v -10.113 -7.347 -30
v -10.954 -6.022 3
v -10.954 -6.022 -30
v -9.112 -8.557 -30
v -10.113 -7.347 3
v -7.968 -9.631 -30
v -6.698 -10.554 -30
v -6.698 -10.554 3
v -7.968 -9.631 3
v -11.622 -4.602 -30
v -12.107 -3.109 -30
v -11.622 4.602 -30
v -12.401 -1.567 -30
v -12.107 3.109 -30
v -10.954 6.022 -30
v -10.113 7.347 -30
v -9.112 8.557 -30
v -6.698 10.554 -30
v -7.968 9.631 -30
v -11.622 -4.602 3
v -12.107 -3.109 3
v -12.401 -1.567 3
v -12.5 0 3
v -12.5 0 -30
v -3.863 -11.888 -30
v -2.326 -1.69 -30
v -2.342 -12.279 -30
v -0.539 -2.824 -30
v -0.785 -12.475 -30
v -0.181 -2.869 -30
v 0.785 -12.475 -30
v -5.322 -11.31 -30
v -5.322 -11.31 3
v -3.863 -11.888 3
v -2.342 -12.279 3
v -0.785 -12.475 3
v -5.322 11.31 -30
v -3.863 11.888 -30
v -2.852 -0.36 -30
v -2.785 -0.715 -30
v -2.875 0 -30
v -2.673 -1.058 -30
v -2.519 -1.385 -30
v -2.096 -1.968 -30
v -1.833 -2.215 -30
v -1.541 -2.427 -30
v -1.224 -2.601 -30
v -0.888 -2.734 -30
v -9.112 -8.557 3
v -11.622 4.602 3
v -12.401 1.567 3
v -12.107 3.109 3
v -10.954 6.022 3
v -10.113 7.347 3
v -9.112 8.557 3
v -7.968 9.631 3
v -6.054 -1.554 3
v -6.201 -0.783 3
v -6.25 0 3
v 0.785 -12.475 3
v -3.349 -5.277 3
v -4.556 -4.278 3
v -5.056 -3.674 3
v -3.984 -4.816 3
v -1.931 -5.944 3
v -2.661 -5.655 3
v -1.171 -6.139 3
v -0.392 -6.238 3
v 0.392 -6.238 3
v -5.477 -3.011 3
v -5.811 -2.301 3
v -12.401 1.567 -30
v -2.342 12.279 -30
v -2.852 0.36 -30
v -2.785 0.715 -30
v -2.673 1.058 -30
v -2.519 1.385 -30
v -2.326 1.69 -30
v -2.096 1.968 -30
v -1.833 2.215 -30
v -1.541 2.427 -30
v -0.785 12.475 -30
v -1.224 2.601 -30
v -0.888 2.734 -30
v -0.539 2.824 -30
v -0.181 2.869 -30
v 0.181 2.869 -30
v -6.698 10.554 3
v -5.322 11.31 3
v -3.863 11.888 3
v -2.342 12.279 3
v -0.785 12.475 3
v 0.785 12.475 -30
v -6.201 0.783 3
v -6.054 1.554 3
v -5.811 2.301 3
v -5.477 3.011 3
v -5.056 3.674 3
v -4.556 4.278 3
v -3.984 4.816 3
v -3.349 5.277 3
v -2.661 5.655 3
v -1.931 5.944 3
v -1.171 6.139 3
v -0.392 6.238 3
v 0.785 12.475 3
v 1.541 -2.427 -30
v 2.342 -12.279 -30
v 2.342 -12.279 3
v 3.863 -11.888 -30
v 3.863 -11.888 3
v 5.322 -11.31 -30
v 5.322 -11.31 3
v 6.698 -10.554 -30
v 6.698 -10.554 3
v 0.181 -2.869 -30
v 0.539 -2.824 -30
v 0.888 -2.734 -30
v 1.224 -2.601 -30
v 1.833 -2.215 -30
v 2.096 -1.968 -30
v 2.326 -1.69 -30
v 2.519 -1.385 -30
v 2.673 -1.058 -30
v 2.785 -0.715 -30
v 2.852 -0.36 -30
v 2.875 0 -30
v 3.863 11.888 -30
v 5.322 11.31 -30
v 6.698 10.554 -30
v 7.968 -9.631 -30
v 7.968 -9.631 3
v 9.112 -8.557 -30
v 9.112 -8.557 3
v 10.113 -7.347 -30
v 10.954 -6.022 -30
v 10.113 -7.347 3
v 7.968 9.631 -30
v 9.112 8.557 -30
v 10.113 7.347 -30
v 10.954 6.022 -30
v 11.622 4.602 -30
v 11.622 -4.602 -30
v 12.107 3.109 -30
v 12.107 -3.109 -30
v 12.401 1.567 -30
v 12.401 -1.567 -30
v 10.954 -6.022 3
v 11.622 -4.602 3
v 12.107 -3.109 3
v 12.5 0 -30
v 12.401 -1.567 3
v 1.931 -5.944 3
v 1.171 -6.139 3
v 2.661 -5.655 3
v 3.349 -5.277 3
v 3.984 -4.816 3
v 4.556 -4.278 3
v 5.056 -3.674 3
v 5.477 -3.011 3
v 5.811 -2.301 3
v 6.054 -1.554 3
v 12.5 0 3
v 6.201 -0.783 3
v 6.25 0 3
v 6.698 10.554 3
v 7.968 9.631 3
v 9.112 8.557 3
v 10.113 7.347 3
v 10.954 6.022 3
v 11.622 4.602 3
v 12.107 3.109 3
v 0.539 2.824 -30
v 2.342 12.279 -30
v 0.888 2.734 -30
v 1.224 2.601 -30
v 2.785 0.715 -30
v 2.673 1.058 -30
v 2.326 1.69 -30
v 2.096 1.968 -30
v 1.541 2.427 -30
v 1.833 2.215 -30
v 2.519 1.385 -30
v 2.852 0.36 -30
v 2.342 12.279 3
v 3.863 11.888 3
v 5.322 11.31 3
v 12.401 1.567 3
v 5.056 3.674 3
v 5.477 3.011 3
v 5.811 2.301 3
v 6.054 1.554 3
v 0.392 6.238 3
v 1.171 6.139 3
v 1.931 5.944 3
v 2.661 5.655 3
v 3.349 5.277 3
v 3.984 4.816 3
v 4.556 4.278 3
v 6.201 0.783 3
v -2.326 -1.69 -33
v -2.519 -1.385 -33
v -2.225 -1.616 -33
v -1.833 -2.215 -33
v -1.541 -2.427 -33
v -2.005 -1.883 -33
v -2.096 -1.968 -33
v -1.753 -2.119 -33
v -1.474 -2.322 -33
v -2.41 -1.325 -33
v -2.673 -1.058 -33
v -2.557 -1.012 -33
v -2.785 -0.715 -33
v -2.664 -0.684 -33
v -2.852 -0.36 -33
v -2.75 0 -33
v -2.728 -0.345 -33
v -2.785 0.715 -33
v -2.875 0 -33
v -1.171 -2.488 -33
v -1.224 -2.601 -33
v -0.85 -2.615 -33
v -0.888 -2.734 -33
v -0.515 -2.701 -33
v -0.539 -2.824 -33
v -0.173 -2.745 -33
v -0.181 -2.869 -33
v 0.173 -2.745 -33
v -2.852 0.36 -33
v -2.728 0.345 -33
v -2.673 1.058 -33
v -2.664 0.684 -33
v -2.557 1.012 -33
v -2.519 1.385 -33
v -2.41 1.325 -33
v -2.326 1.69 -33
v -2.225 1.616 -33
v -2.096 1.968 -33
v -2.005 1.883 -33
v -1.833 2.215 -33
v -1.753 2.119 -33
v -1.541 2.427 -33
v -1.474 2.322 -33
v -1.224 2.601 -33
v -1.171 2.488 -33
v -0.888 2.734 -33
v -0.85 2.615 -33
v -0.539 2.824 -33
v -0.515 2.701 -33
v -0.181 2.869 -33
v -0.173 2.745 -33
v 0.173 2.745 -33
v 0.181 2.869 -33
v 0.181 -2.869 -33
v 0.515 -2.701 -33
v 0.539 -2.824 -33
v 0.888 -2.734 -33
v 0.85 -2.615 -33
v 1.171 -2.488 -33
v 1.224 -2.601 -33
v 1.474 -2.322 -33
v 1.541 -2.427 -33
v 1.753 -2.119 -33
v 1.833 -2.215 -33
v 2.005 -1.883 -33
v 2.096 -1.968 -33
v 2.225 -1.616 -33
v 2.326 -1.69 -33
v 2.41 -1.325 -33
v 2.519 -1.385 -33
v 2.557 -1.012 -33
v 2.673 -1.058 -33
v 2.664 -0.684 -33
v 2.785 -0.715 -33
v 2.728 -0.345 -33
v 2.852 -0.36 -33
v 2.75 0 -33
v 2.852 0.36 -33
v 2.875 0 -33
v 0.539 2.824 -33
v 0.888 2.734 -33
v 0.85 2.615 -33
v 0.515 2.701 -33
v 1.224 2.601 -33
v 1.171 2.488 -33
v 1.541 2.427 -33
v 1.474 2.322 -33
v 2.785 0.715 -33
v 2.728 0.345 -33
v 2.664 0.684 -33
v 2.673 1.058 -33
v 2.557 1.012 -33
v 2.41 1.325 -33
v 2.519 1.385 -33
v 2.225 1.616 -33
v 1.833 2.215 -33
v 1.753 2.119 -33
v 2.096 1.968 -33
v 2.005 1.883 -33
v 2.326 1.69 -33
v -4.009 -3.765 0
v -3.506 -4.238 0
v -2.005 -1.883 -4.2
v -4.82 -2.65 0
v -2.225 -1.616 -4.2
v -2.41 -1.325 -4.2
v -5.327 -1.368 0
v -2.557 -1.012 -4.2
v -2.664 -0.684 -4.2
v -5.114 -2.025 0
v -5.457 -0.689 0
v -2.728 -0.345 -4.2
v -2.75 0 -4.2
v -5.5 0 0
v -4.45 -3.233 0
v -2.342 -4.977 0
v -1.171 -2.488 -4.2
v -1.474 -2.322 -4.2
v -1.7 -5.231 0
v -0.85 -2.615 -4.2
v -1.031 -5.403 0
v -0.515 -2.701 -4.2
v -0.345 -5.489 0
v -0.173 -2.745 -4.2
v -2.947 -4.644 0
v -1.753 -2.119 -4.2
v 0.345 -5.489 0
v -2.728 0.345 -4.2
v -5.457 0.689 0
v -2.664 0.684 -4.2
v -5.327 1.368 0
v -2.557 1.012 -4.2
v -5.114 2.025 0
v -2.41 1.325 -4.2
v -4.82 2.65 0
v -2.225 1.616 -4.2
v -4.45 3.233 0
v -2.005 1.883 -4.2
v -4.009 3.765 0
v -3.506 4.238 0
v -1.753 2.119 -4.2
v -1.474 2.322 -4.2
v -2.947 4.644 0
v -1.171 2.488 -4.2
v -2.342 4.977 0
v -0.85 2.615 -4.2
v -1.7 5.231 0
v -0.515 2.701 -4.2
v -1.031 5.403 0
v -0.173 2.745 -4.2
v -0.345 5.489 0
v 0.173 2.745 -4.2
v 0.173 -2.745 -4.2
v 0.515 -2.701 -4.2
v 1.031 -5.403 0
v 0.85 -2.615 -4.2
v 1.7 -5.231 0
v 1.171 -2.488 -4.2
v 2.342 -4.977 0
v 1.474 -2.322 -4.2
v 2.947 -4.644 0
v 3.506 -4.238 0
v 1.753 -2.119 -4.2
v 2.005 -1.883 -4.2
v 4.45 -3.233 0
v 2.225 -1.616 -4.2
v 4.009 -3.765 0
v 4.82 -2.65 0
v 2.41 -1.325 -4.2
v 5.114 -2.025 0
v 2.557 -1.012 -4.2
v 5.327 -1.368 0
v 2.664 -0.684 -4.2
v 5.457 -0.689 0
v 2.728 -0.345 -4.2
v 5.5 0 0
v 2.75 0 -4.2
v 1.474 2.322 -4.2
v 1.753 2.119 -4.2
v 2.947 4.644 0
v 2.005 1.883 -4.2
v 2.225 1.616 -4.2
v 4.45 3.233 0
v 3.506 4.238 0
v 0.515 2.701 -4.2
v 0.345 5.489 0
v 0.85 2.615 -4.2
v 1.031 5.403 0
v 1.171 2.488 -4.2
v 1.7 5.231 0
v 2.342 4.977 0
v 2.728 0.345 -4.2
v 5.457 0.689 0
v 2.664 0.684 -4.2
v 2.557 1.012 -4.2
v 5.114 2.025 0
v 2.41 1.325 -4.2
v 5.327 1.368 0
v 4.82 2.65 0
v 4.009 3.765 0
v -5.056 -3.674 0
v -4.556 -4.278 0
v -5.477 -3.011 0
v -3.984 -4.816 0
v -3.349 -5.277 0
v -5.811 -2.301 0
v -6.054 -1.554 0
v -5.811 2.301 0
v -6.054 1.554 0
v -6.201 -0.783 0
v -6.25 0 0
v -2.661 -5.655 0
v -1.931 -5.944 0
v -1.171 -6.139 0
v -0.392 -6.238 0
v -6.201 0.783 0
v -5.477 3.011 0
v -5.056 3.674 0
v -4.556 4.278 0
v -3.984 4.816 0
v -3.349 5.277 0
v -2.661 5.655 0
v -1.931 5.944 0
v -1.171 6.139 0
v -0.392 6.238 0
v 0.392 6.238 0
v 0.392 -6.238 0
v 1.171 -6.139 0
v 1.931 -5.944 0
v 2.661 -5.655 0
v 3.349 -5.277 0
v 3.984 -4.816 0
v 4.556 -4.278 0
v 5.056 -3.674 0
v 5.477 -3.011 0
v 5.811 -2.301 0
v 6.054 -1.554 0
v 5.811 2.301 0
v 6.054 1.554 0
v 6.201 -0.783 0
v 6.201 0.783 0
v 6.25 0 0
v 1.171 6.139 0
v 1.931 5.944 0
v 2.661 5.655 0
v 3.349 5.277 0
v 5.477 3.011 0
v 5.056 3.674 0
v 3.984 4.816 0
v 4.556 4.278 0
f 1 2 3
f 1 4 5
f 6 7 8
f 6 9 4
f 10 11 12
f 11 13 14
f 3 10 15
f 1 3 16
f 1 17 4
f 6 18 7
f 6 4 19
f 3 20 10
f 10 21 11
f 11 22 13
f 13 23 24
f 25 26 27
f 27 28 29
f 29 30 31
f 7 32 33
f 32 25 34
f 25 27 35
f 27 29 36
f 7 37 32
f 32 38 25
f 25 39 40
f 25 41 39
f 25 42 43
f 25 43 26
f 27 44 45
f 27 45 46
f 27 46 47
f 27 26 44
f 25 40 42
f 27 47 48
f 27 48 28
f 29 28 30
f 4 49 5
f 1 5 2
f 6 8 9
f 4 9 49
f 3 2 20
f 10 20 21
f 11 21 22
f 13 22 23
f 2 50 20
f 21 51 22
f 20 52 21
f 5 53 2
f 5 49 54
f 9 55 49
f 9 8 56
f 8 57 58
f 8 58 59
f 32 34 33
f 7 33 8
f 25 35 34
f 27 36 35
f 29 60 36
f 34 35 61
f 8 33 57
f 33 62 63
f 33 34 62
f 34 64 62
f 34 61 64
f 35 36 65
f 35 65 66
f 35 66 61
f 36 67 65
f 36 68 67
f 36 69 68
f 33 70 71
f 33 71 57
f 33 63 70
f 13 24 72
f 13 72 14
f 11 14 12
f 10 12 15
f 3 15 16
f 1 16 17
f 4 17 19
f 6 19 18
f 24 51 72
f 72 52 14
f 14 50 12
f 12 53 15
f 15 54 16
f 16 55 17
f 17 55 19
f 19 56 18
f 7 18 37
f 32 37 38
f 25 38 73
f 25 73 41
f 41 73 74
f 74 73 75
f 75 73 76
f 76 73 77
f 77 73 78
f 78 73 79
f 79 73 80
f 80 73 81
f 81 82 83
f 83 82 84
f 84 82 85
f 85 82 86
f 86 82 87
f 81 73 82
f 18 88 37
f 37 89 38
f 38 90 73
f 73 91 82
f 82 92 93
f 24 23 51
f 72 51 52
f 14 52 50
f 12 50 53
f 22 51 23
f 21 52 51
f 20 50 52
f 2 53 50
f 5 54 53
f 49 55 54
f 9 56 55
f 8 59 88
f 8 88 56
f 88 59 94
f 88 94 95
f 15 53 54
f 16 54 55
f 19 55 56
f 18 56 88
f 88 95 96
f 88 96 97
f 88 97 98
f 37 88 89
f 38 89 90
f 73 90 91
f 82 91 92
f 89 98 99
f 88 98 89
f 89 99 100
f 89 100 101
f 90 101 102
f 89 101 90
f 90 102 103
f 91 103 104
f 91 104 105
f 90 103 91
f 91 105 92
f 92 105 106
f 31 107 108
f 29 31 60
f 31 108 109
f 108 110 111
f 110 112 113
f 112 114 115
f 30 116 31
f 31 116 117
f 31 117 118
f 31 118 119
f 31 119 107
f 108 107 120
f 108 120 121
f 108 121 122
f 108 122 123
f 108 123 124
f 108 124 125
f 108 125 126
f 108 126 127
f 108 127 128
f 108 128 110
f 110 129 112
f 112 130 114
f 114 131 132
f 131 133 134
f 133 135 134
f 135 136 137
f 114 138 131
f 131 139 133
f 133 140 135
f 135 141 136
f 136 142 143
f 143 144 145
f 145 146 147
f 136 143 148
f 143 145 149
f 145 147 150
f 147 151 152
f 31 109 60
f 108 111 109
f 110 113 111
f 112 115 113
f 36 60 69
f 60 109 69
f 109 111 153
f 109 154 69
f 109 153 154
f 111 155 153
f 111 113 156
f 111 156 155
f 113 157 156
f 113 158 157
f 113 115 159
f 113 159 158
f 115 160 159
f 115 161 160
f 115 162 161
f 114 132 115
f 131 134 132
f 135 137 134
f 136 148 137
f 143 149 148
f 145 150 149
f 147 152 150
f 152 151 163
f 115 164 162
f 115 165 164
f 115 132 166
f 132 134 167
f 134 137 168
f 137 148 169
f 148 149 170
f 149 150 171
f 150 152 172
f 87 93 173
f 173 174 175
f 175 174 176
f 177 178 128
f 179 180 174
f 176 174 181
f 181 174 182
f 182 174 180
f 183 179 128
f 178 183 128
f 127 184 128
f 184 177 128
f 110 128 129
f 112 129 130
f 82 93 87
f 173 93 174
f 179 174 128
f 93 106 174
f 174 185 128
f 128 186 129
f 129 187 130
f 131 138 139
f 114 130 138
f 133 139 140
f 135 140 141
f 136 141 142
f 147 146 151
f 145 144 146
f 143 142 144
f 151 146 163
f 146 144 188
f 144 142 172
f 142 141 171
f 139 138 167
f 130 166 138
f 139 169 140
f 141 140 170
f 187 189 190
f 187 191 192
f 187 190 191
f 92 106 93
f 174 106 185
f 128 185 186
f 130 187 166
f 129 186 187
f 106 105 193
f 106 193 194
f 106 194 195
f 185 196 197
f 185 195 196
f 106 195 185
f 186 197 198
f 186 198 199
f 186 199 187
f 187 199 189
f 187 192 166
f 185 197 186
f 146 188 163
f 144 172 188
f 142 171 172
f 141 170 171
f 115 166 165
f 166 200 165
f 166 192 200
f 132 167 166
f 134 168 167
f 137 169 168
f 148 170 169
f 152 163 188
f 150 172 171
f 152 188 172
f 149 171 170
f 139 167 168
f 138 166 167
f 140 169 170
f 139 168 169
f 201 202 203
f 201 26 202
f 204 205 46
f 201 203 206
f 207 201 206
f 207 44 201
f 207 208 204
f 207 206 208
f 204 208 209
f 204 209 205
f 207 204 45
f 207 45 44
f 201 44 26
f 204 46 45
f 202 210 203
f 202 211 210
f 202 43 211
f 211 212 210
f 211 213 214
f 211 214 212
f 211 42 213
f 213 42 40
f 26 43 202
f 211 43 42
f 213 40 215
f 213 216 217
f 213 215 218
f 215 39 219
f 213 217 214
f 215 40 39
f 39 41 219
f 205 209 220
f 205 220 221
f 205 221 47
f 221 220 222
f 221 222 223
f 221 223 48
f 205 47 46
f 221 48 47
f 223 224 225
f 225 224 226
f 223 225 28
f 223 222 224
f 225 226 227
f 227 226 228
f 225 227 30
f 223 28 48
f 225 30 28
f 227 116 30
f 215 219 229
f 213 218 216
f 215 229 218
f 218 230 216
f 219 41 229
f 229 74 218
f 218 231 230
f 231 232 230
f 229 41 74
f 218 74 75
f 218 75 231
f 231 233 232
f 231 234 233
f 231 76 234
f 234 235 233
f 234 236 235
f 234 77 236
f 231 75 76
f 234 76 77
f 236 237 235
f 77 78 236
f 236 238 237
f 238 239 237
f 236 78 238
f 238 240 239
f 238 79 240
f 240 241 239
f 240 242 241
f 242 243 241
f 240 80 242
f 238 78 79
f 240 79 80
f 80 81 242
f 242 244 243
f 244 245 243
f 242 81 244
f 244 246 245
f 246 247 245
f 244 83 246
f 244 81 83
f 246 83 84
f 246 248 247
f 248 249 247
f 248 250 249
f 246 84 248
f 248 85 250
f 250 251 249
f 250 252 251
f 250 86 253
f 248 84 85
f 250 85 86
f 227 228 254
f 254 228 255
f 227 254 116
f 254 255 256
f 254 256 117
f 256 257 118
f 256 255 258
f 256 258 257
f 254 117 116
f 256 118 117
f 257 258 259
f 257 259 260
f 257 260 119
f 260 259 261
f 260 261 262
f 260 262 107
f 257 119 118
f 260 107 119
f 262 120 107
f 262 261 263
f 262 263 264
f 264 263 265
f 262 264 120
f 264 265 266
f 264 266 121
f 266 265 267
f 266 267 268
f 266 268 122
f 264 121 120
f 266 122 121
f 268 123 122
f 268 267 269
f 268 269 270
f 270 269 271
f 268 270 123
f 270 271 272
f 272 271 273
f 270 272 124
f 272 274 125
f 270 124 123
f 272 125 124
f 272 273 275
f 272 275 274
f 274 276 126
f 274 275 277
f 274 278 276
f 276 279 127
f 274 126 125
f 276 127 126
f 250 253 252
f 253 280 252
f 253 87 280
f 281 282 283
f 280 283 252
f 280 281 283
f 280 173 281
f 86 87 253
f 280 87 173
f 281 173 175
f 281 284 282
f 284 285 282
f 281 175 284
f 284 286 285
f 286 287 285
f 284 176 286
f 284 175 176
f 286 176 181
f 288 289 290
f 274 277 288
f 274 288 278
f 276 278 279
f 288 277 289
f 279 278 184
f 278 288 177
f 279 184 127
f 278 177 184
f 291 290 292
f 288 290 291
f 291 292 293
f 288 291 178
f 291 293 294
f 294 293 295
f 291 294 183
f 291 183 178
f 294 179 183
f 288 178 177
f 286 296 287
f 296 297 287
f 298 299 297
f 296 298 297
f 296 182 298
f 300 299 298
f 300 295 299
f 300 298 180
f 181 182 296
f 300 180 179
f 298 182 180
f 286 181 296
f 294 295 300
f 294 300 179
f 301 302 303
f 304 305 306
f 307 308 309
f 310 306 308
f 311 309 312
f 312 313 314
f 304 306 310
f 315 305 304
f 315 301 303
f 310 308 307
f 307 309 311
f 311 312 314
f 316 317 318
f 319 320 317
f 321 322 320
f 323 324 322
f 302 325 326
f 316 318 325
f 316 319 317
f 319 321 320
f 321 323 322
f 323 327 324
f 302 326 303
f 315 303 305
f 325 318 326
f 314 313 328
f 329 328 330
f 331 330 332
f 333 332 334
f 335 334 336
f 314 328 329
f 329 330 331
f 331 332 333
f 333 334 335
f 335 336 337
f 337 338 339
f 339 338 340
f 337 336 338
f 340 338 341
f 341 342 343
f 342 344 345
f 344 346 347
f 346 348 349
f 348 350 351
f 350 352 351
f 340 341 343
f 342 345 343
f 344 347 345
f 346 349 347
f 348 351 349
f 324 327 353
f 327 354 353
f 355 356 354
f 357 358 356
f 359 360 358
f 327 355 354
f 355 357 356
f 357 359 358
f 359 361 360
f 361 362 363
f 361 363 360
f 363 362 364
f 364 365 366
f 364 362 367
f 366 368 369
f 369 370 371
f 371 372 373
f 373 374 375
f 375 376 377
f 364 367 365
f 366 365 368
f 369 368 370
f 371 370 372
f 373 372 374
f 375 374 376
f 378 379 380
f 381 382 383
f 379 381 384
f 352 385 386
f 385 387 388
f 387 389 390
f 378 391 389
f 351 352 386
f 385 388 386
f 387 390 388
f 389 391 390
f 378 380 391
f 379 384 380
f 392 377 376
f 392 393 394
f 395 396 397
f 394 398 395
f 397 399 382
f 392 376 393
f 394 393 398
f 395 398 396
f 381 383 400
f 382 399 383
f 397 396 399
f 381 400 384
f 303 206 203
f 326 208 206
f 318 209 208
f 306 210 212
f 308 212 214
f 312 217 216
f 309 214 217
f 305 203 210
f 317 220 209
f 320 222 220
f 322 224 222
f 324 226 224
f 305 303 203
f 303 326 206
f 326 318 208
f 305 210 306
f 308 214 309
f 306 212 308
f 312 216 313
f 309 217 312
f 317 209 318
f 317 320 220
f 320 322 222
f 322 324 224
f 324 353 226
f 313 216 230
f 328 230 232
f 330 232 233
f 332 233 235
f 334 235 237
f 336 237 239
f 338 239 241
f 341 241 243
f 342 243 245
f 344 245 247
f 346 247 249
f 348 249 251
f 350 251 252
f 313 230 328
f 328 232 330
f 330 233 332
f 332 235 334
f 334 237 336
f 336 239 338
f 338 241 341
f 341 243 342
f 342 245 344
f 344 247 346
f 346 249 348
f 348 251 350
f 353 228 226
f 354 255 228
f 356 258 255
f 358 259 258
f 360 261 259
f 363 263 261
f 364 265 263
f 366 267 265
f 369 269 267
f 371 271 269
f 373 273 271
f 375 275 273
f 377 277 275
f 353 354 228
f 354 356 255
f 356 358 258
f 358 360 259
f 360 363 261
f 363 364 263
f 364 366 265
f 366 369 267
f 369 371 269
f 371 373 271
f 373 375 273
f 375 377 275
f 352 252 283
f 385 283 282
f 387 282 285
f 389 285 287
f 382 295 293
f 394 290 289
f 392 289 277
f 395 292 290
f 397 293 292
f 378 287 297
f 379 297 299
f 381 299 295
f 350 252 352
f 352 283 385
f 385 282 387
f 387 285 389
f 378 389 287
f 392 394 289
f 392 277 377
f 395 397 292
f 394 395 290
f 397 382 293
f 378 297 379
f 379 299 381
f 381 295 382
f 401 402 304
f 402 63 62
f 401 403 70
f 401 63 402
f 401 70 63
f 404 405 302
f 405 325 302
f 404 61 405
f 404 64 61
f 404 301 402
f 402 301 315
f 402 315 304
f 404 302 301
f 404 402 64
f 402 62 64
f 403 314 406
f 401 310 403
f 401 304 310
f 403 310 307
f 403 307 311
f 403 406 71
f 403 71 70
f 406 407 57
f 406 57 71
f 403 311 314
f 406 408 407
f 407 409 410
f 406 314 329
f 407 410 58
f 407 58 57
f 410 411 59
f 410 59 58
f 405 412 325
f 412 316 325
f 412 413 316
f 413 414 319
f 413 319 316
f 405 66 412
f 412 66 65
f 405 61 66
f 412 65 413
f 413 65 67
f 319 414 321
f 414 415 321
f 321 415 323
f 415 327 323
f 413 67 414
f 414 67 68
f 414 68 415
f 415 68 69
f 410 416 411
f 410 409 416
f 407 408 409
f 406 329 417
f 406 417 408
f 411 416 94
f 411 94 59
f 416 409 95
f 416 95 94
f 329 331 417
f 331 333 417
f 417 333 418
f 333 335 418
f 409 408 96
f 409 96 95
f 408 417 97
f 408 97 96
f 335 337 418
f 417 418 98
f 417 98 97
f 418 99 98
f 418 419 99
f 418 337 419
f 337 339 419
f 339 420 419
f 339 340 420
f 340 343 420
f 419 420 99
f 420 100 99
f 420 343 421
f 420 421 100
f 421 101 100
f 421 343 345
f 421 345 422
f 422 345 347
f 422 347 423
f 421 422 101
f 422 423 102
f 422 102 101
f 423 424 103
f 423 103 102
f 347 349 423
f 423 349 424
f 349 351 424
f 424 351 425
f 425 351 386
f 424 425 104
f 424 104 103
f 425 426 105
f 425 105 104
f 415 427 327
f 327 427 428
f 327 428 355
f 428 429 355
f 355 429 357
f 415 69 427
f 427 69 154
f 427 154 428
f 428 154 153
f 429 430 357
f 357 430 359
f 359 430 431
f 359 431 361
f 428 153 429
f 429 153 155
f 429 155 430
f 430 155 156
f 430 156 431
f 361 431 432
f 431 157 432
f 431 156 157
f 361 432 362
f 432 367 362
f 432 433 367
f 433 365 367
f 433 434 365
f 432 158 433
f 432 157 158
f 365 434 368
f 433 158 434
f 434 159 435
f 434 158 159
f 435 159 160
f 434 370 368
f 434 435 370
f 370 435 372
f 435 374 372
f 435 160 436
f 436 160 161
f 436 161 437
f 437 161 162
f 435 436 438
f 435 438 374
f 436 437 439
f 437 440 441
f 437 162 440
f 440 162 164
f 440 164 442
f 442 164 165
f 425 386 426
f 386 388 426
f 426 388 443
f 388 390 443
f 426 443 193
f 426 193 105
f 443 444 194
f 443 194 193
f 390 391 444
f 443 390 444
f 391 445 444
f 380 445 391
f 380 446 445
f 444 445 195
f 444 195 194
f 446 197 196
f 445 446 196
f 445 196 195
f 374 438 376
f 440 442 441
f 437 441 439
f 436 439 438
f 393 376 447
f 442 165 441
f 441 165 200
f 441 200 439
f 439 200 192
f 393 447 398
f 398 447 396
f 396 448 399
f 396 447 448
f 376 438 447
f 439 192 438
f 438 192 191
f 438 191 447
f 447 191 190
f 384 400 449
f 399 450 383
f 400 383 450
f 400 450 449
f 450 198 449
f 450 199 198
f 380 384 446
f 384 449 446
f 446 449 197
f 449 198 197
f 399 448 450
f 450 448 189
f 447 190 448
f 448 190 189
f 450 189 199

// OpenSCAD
$fn = 50;


difference() {
	union() {
		translate(v = [0, 0, -30.0000000000]) {
			cylinder(h = 33, r = 12.5000000000);
		}
		#translate(v = [0, 0, -33.0000000000]) {
			cylinder(h = 33, r = 2.8750000000);
		}
	}
	union() {
		translate(v = [0, 0, 0]) {
			rotate(a = [0, 0, 0]) {
				difference() {
					union() {
						translate(v = [0, 0, -33.0000000000]) {
							cylinder(h = 33, r = 2.2500000000);
						}
						translate(v = [0, 0, -4.2000000000]) {
							cylinder(h = 4.2000000000, r1 = 2.7500000000, r2 = 5.5000000000);
						}
						translate(v = [0, 0, -33.0000000000]) {
							cylinder(h = 33, r = 2.7500000000);
						}
						translate(v = [0, 0, -33.0000000000]) {
							cylinder(h = 33, r = 2.2500000000);
						}
					}
					union();
				}
			}
		}
		#cylinder(h = 3, r = 6.2500000000);
	}
}
